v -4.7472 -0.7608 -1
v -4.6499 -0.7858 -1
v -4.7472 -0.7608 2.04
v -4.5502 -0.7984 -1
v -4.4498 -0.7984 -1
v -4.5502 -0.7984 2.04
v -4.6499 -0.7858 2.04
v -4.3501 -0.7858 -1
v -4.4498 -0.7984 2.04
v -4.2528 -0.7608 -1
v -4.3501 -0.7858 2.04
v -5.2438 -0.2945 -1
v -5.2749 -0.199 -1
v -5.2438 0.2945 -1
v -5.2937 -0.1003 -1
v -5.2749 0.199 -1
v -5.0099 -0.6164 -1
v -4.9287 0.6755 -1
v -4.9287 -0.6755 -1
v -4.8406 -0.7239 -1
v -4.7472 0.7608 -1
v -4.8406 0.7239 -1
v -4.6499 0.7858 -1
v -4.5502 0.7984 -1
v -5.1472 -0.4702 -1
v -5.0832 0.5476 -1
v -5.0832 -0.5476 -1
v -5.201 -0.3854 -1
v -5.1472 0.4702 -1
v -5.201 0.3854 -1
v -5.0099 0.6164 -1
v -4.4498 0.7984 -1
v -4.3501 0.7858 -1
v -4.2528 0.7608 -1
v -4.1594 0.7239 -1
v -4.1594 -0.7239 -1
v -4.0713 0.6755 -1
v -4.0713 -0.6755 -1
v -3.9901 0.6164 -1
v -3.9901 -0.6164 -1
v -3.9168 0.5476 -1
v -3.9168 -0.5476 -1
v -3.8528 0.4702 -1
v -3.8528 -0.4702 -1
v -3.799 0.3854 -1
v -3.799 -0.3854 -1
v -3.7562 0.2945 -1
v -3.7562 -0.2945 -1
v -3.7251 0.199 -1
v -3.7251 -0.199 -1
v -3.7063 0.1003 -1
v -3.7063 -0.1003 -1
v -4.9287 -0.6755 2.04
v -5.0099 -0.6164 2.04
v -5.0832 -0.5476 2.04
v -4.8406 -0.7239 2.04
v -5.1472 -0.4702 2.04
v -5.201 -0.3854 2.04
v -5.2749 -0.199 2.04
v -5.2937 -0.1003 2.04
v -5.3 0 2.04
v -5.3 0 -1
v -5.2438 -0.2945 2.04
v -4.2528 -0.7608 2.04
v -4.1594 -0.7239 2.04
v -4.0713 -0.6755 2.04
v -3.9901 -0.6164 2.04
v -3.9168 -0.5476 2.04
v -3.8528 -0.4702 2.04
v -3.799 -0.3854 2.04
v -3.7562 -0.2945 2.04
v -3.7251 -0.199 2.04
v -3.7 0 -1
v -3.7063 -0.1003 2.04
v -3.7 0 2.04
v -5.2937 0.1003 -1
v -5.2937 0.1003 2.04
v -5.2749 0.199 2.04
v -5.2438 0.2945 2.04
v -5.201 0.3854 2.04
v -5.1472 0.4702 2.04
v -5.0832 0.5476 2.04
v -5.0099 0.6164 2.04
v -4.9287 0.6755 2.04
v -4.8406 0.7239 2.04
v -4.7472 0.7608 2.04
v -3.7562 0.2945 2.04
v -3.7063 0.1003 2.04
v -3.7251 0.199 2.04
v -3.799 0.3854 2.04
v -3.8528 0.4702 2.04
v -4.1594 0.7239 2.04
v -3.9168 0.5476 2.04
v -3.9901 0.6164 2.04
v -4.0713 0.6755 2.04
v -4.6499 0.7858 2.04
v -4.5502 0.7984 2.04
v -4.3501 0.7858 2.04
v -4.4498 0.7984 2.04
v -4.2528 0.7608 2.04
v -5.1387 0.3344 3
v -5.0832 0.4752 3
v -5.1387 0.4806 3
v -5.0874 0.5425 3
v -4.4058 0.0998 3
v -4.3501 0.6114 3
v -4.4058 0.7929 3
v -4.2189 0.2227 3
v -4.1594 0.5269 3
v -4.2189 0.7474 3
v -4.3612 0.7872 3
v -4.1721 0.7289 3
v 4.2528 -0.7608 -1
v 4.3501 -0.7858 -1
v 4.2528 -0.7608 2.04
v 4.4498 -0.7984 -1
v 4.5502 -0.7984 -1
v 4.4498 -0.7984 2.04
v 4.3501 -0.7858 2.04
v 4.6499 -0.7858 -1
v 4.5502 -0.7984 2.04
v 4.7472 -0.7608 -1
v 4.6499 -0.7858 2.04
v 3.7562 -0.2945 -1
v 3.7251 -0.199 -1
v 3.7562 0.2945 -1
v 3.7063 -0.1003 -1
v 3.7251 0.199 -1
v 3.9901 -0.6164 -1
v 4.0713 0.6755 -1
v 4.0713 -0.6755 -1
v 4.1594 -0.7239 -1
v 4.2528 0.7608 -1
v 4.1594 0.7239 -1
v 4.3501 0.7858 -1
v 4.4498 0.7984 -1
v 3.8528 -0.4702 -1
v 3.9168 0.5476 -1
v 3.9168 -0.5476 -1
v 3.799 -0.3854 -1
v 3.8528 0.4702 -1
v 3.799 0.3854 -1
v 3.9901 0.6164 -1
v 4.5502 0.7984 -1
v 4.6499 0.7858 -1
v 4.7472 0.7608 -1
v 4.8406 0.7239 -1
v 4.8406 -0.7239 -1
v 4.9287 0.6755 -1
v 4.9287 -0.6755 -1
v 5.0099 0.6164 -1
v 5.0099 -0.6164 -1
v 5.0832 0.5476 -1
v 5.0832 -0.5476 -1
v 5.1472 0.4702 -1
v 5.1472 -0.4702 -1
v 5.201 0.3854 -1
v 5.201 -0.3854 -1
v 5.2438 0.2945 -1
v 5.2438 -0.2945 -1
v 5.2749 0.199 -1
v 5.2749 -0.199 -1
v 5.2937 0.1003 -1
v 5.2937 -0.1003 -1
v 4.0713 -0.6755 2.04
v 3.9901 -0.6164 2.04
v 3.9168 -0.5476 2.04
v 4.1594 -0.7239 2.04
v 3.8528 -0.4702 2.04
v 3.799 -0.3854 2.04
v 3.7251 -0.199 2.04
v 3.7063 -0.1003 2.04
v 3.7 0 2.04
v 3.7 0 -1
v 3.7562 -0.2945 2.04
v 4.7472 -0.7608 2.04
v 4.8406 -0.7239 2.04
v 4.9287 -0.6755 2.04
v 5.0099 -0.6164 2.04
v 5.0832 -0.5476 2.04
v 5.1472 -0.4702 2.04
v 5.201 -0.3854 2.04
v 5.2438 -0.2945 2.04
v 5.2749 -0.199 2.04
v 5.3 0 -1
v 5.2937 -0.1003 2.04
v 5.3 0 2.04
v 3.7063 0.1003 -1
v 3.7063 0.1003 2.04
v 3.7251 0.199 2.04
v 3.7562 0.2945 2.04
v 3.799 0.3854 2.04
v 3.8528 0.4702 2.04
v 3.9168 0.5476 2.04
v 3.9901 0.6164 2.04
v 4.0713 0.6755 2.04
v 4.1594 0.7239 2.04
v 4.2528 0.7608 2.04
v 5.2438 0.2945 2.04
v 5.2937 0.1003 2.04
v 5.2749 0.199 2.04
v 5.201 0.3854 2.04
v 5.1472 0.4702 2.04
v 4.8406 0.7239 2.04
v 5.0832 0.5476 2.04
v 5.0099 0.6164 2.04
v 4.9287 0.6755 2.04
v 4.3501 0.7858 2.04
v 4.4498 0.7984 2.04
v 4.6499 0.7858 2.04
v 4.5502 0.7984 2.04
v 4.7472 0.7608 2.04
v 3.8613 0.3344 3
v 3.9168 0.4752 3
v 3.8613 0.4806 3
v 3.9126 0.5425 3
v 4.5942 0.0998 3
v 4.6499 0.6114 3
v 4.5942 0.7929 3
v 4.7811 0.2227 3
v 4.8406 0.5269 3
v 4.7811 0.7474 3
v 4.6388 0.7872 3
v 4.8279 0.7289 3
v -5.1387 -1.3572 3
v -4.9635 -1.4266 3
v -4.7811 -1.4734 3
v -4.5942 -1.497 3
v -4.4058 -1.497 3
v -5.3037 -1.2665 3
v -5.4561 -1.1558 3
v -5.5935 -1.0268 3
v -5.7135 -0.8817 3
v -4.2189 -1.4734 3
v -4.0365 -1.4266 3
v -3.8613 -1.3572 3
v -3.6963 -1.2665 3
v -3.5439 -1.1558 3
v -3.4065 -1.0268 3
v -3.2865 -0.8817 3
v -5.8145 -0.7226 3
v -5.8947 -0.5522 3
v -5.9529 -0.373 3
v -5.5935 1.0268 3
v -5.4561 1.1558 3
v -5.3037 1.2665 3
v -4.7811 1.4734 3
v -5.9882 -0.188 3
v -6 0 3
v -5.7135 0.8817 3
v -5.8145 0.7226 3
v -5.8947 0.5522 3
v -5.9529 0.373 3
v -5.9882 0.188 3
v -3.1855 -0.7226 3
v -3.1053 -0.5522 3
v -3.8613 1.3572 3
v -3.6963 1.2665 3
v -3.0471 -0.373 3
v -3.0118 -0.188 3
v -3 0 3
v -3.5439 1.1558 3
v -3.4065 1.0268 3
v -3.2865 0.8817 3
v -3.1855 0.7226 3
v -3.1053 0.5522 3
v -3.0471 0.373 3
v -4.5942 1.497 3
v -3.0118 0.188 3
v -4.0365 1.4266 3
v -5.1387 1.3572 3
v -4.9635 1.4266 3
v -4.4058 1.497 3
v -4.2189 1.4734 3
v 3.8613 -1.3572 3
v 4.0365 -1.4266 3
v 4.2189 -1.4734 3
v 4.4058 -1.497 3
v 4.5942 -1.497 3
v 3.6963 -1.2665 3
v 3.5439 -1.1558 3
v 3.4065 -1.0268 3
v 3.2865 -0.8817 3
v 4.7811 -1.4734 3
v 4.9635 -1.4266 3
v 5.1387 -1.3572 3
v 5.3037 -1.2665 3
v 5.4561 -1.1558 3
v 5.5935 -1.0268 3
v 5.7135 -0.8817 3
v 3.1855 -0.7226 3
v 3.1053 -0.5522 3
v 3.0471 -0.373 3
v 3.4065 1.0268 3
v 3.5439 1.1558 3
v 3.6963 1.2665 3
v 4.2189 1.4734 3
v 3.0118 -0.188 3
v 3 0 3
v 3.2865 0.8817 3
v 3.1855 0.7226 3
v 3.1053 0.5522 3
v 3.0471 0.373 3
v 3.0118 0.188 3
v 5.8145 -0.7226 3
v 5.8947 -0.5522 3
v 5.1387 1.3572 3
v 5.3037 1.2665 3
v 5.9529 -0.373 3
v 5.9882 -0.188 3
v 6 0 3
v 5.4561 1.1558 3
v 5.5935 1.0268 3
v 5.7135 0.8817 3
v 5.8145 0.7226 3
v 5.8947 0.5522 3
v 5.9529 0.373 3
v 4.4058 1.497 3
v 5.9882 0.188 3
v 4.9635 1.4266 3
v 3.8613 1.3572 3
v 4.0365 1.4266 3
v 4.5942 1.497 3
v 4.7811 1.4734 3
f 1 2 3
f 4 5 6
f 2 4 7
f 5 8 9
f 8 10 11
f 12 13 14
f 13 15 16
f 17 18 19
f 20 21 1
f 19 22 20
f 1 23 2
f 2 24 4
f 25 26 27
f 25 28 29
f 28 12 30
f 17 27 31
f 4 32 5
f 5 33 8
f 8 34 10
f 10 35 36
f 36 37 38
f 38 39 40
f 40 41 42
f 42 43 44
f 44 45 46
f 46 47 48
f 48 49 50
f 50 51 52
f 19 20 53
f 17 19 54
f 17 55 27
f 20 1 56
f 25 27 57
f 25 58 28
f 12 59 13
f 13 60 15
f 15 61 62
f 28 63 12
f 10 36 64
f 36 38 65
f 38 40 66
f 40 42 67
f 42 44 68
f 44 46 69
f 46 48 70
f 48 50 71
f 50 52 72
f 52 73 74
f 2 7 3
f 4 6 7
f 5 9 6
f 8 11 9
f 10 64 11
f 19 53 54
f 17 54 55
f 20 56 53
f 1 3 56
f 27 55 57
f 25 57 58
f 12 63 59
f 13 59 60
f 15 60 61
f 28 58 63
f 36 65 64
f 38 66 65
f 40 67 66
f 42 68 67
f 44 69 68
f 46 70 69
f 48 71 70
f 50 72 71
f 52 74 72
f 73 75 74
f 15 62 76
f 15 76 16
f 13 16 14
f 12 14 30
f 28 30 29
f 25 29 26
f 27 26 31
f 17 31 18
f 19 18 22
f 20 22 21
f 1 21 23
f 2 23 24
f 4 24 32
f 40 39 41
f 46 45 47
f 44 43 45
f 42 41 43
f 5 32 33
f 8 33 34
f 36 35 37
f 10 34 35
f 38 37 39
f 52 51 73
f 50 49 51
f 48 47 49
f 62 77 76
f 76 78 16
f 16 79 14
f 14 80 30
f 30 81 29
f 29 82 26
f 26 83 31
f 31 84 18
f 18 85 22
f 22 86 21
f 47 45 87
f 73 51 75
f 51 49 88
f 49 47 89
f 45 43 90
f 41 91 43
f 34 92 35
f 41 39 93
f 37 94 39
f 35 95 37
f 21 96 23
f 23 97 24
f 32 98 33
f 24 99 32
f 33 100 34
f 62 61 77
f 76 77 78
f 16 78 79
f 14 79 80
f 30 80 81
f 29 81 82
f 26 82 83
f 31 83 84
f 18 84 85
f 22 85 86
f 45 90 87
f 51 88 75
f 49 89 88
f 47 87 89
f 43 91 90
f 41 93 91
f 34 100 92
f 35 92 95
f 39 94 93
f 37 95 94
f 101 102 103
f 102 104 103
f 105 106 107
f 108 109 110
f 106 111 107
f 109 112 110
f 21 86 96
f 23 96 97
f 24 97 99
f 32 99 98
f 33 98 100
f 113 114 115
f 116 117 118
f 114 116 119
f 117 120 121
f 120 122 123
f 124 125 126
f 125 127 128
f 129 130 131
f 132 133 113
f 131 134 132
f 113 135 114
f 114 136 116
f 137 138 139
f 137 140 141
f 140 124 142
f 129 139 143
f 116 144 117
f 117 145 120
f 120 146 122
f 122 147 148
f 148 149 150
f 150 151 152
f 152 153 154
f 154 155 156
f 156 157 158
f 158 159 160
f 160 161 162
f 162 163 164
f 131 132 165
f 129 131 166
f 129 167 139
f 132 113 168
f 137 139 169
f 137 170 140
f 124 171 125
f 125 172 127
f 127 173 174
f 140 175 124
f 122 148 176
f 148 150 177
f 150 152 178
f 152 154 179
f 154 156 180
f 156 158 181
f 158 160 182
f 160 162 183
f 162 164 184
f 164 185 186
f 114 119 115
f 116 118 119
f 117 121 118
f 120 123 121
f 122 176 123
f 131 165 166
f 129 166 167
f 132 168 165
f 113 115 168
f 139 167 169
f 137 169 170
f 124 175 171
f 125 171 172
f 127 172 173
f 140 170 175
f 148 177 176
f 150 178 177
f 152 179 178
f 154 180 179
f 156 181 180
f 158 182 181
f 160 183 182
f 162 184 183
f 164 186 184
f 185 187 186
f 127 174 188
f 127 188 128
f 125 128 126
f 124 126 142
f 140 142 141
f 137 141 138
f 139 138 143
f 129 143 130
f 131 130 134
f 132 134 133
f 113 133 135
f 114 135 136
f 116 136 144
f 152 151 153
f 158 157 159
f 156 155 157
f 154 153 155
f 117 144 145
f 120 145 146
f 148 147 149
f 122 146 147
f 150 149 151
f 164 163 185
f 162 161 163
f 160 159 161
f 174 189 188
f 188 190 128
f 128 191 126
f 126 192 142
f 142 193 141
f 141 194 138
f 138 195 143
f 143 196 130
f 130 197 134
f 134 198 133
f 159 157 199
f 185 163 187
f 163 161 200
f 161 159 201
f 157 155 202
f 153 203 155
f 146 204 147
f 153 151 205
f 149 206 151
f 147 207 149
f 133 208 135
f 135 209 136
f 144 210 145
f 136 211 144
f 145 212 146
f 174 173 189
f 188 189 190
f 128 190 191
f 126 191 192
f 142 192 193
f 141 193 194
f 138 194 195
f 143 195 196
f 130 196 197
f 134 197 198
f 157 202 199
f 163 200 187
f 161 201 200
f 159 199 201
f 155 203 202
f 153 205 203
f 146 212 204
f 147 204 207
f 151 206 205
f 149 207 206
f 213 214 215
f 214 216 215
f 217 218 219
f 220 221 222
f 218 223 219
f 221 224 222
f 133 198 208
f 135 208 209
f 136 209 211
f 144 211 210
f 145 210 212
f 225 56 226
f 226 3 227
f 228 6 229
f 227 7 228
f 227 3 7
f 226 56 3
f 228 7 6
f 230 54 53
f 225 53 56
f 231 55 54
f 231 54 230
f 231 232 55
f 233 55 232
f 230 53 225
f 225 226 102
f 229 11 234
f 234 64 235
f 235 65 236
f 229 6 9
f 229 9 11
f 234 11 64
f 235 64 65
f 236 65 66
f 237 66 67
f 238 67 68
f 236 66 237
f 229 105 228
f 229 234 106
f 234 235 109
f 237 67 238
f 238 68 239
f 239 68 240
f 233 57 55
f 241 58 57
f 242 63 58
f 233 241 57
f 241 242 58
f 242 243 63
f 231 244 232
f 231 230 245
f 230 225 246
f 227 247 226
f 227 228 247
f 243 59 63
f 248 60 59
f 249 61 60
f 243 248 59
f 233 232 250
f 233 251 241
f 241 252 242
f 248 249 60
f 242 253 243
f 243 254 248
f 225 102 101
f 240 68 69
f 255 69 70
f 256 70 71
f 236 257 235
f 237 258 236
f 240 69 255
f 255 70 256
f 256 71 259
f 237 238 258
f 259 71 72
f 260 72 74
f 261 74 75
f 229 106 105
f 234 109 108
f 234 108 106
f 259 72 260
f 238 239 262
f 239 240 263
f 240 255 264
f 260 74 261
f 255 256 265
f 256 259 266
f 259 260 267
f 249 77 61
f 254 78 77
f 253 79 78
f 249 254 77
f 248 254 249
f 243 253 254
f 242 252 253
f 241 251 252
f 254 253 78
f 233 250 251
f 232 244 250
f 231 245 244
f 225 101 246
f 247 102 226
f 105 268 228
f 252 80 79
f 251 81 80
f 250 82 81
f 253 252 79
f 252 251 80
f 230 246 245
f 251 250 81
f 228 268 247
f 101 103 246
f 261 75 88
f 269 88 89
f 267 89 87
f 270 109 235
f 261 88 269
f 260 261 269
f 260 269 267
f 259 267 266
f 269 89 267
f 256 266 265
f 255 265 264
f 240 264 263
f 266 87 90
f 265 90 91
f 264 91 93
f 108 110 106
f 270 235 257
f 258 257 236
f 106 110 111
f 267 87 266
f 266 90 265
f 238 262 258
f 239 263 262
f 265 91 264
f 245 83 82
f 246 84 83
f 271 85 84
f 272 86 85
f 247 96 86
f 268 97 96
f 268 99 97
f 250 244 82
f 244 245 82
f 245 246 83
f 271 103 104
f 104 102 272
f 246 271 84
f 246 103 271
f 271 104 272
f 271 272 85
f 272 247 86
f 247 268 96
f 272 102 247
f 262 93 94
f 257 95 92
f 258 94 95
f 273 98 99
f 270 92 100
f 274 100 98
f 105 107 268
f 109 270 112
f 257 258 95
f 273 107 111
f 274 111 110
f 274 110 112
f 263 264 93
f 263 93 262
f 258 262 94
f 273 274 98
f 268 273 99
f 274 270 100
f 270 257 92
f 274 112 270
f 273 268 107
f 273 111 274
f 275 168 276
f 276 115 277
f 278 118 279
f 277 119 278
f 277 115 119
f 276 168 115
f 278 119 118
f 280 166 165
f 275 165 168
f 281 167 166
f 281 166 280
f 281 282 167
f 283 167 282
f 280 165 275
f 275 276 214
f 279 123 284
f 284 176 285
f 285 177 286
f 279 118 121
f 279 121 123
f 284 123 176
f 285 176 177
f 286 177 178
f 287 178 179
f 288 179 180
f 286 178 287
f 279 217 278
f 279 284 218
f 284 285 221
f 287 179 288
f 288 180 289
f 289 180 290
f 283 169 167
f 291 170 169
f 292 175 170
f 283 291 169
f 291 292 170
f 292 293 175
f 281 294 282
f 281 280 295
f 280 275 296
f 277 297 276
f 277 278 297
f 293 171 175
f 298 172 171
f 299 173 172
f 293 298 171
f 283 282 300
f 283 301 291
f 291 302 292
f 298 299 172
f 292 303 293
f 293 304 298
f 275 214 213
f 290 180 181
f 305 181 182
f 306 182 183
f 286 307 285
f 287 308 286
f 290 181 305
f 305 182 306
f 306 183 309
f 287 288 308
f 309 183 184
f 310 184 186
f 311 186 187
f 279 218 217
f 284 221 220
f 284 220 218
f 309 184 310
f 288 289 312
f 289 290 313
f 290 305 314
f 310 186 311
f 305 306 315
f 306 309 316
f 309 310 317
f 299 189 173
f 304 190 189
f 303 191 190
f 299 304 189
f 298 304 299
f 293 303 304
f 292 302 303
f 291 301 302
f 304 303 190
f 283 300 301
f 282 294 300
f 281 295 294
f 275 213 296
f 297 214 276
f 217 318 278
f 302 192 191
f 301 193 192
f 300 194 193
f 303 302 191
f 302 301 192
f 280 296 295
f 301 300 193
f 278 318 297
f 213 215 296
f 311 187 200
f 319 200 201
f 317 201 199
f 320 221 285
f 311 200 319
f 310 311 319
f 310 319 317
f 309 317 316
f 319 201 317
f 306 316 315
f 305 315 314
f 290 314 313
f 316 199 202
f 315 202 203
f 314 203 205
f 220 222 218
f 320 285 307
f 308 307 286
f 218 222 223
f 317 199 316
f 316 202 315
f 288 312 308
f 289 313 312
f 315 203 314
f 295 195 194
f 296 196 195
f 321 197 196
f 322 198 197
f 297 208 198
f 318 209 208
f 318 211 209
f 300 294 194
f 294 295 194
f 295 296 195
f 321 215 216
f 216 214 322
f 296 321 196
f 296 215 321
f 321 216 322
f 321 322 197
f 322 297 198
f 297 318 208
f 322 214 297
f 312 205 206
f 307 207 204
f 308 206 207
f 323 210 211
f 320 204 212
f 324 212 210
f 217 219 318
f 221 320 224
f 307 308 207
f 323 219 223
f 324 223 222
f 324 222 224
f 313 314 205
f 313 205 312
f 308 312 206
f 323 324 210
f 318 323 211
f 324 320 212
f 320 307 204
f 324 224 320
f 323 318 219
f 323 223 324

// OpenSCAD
$fn = 50;

difference() {
	union() {
		translate(v = [0, 0, 0]) {
			rotate(a = [0, 0, 0]) {
				difference() {
					union() {
						translate(v = [-4.5, 0, 3]) {
							rotate(a = [0, 0, 0]) {
								difference() {
									union() {
										translate(v = [0, 0, -4.0]) {
											cylinder(h = 4, r = 0.8);
										}
										translate(v = [0, 0, -0.96]) {
											cylinder(h = 0.96, r1 = 0.8, r2 = 1.5);
										}
									}
									union();
								}
							}
						}
						translate(v = [4.5, 0, 3]) {
							rotate(a = [0, 0, 0]) {
								difference() {
									union() {
										translate(v = [0, 0, -4.0]) {
											cylinder(h = 4, r = 0.8);
										}
										translate(v = [0, 0, -0.96]) {
											cylinder(h = 0.96, r1 = 0.8, r2 = 1.5);
										}
									}
									union();
								}
							}
						}
					}
					union();
				}
			}
		}
	}
	union();
}
